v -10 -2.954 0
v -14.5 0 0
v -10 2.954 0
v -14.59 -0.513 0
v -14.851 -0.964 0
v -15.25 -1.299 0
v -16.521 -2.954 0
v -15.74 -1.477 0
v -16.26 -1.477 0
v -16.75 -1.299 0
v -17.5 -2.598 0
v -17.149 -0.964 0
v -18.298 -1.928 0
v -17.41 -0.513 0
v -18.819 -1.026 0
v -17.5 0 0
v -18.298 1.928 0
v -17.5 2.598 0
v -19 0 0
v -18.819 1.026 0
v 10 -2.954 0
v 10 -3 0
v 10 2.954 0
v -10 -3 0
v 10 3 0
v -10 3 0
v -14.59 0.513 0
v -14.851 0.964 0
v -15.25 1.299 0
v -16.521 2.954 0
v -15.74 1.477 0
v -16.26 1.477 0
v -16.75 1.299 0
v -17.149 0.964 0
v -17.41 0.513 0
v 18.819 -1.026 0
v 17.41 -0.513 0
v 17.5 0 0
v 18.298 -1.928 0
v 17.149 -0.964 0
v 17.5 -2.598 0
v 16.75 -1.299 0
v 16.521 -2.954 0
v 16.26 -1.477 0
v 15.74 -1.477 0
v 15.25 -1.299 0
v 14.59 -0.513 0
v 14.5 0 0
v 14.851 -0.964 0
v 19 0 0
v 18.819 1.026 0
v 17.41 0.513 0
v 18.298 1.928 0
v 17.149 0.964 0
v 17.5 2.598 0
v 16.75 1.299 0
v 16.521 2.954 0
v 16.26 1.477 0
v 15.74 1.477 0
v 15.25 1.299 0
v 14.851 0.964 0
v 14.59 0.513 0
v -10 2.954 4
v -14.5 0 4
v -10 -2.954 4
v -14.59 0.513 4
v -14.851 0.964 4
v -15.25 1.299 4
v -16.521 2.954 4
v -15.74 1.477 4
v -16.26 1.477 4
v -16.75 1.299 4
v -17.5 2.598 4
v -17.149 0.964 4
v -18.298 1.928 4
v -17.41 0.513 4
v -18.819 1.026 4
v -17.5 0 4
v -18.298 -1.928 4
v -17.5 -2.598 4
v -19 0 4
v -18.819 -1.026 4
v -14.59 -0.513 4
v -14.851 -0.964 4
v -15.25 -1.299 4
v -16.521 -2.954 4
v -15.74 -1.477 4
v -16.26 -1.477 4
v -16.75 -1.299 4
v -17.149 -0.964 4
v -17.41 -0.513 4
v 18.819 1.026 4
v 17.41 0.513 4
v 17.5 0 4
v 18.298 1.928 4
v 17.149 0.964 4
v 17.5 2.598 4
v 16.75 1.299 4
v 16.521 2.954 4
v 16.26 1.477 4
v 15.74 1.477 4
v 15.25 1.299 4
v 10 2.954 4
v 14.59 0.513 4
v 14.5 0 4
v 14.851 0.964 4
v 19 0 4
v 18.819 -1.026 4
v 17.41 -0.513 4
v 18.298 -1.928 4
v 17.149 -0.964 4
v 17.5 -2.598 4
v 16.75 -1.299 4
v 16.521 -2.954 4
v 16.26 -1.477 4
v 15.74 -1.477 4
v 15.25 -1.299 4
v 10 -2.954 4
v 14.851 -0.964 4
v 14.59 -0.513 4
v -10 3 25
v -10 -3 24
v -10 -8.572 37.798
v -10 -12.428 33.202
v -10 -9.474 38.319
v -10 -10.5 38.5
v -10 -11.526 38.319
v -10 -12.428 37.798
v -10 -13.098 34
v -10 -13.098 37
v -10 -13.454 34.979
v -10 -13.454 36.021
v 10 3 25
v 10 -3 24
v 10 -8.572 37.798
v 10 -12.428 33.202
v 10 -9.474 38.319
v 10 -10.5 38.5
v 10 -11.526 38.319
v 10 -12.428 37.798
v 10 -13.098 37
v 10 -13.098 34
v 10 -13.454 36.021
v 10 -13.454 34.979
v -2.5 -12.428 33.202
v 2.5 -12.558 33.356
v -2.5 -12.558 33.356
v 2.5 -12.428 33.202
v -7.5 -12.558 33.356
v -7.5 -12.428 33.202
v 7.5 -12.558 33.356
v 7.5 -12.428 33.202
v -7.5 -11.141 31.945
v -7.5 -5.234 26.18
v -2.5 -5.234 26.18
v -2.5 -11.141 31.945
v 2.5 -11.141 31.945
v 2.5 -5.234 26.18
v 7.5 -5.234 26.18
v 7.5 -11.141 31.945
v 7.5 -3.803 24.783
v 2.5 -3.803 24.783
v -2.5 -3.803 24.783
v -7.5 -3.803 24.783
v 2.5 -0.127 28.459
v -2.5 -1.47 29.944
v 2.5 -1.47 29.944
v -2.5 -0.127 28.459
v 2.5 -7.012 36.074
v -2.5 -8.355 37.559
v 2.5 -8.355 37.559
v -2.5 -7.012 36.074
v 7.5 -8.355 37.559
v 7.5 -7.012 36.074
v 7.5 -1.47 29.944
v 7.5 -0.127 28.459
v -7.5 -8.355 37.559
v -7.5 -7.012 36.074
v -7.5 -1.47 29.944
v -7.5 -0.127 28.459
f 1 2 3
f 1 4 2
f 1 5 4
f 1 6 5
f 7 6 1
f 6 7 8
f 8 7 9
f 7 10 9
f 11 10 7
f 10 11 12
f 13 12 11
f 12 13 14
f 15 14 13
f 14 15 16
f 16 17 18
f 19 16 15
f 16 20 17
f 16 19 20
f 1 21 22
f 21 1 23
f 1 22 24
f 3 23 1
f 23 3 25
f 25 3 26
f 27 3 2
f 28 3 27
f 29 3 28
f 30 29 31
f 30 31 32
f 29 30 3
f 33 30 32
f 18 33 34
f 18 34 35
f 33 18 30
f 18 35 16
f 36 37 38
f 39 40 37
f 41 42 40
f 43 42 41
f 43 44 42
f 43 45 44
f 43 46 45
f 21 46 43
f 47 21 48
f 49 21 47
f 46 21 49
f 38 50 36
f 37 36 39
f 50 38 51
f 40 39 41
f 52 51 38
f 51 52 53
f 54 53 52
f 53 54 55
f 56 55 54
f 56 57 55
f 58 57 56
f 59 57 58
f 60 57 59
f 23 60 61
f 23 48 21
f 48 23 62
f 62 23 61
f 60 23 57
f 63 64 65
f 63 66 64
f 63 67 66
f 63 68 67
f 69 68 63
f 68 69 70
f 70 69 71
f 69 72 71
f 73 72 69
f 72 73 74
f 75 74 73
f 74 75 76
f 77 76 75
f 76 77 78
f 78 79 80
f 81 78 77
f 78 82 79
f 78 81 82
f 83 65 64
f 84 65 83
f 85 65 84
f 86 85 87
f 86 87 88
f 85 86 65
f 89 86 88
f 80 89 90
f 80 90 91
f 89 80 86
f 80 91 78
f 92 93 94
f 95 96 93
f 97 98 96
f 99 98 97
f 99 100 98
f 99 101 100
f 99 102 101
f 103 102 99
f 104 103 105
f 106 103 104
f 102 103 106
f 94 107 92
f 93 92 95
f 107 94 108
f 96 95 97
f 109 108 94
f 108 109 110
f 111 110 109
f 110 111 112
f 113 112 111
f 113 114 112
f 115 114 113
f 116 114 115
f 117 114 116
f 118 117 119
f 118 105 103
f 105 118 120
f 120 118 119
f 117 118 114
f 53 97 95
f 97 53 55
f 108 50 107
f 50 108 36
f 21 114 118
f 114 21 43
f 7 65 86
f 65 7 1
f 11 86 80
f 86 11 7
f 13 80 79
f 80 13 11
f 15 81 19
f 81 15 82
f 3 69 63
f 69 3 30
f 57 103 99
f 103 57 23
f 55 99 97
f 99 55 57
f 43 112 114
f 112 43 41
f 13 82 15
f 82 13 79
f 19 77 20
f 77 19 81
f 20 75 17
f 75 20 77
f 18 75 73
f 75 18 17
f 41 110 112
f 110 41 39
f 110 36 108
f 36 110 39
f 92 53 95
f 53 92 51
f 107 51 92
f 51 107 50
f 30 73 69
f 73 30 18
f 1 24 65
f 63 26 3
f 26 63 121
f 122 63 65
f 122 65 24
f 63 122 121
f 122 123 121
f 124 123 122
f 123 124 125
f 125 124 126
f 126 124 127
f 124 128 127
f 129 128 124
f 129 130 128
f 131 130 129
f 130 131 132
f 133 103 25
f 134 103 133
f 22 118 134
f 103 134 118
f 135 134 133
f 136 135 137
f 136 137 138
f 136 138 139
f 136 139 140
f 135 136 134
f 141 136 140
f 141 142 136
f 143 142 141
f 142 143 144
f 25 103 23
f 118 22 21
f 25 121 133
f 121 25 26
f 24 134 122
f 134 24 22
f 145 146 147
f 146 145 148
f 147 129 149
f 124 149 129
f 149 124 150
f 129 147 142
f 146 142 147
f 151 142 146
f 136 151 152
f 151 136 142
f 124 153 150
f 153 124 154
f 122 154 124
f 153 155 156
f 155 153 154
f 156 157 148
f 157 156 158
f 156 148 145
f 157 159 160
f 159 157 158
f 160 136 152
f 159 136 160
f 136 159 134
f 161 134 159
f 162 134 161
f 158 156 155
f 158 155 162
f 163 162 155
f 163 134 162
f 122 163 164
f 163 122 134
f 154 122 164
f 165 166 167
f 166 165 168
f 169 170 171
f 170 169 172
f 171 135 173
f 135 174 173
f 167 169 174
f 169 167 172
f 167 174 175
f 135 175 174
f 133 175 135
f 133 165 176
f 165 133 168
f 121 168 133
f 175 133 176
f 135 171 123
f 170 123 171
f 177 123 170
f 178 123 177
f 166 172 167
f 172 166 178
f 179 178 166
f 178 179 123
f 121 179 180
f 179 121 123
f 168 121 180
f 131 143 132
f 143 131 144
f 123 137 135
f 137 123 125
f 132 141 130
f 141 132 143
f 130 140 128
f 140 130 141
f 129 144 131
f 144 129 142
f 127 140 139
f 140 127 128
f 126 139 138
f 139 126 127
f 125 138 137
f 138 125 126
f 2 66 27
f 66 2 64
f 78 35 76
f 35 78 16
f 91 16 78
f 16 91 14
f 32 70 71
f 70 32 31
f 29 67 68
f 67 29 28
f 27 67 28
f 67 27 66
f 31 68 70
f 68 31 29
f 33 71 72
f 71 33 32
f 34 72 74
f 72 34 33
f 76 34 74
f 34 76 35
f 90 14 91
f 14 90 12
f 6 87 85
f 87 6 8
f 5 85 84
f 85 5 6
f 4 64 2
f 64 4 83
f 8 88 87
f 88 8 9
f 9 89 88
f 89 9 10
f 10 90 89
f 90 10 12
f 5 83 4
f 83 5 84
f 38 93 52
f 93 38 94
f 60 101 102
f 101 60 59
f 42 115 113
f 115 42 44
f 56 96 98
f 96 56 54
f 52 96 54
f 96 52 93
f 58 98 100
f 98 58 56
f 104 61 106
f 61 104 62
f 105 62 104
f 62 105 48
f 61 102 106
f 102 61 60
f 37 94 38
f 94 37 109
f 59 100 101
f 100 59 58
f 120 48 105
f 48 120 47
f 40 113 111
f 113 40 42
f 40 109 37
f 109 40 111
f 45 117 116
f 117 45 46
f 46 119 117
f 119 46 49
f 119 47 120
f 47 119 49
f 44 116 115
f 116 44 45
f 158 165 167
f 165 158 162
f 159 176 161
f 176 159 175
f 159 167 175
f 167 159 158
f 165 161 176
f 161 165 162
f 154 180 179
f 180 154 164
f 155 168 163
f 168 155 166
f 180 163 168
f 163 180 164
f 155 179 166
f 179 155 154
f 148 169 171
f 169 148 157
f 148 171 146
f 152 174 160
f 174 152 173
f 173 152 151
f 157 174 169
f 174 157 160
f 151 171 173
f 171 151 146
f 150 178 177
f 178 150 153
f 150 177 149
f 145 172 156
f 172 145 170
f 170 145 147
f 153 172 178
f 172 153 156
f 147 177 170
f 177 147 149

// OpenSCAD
clipw = 10.5;
clipt = 1.5;
clipl = 25;
screwsp = 32;
screwd = 3;

w = screwsp-screwd*4;

$fn=18;

difference() {
   union() {
      hull() {
         translate([-screwsp/2,0,0]) cylinder(d=screwd*2, h=4);
         translate([screwsp/2,0,0]) cylinder(d=screwd*2, h=4);
      }
      translate([-w/2,-screwd,0]) cube([w, screwd*2, clipl]);
      hull() {
         translate([-w/2,-screwd,clipl-1]) cube([w, screwd*2, 1]);
         translate([-w/2,-clipw,clipl+clipw])
            rotate([0,90,0]) 
            cylinder(d=screwd*2,h=w);
      }
   }
   union() {
      translate([-screwsp/2,0,0]) cylinder(d=screwd, h=5);
      translate([screwsp/2,0,0]) cylinder(d=screwd, h=5);
      
      // zip tie holes
      translate([w/2-5,-screwd*2,clipl-1])
         rotate([-45,0,0]) cube([5,2,clipw*2],center=true);
      translate([-w/2+5,-screwd*2,clipl-1])
         rotate([-45,0,0]) cube([5,2,clipw*2],center=true);
      translate([w/2-5,-screwd*2,clipl+clipw+3])
         rotate([-45,0,0]) cube([5,2,clipw*2],center=true);
      translate([-w/2+5,-screwd*2,clipl+clipw+3])
         rotate([-45,0,0]) cube([5,2,clipw*2],center=true);
   }
}
